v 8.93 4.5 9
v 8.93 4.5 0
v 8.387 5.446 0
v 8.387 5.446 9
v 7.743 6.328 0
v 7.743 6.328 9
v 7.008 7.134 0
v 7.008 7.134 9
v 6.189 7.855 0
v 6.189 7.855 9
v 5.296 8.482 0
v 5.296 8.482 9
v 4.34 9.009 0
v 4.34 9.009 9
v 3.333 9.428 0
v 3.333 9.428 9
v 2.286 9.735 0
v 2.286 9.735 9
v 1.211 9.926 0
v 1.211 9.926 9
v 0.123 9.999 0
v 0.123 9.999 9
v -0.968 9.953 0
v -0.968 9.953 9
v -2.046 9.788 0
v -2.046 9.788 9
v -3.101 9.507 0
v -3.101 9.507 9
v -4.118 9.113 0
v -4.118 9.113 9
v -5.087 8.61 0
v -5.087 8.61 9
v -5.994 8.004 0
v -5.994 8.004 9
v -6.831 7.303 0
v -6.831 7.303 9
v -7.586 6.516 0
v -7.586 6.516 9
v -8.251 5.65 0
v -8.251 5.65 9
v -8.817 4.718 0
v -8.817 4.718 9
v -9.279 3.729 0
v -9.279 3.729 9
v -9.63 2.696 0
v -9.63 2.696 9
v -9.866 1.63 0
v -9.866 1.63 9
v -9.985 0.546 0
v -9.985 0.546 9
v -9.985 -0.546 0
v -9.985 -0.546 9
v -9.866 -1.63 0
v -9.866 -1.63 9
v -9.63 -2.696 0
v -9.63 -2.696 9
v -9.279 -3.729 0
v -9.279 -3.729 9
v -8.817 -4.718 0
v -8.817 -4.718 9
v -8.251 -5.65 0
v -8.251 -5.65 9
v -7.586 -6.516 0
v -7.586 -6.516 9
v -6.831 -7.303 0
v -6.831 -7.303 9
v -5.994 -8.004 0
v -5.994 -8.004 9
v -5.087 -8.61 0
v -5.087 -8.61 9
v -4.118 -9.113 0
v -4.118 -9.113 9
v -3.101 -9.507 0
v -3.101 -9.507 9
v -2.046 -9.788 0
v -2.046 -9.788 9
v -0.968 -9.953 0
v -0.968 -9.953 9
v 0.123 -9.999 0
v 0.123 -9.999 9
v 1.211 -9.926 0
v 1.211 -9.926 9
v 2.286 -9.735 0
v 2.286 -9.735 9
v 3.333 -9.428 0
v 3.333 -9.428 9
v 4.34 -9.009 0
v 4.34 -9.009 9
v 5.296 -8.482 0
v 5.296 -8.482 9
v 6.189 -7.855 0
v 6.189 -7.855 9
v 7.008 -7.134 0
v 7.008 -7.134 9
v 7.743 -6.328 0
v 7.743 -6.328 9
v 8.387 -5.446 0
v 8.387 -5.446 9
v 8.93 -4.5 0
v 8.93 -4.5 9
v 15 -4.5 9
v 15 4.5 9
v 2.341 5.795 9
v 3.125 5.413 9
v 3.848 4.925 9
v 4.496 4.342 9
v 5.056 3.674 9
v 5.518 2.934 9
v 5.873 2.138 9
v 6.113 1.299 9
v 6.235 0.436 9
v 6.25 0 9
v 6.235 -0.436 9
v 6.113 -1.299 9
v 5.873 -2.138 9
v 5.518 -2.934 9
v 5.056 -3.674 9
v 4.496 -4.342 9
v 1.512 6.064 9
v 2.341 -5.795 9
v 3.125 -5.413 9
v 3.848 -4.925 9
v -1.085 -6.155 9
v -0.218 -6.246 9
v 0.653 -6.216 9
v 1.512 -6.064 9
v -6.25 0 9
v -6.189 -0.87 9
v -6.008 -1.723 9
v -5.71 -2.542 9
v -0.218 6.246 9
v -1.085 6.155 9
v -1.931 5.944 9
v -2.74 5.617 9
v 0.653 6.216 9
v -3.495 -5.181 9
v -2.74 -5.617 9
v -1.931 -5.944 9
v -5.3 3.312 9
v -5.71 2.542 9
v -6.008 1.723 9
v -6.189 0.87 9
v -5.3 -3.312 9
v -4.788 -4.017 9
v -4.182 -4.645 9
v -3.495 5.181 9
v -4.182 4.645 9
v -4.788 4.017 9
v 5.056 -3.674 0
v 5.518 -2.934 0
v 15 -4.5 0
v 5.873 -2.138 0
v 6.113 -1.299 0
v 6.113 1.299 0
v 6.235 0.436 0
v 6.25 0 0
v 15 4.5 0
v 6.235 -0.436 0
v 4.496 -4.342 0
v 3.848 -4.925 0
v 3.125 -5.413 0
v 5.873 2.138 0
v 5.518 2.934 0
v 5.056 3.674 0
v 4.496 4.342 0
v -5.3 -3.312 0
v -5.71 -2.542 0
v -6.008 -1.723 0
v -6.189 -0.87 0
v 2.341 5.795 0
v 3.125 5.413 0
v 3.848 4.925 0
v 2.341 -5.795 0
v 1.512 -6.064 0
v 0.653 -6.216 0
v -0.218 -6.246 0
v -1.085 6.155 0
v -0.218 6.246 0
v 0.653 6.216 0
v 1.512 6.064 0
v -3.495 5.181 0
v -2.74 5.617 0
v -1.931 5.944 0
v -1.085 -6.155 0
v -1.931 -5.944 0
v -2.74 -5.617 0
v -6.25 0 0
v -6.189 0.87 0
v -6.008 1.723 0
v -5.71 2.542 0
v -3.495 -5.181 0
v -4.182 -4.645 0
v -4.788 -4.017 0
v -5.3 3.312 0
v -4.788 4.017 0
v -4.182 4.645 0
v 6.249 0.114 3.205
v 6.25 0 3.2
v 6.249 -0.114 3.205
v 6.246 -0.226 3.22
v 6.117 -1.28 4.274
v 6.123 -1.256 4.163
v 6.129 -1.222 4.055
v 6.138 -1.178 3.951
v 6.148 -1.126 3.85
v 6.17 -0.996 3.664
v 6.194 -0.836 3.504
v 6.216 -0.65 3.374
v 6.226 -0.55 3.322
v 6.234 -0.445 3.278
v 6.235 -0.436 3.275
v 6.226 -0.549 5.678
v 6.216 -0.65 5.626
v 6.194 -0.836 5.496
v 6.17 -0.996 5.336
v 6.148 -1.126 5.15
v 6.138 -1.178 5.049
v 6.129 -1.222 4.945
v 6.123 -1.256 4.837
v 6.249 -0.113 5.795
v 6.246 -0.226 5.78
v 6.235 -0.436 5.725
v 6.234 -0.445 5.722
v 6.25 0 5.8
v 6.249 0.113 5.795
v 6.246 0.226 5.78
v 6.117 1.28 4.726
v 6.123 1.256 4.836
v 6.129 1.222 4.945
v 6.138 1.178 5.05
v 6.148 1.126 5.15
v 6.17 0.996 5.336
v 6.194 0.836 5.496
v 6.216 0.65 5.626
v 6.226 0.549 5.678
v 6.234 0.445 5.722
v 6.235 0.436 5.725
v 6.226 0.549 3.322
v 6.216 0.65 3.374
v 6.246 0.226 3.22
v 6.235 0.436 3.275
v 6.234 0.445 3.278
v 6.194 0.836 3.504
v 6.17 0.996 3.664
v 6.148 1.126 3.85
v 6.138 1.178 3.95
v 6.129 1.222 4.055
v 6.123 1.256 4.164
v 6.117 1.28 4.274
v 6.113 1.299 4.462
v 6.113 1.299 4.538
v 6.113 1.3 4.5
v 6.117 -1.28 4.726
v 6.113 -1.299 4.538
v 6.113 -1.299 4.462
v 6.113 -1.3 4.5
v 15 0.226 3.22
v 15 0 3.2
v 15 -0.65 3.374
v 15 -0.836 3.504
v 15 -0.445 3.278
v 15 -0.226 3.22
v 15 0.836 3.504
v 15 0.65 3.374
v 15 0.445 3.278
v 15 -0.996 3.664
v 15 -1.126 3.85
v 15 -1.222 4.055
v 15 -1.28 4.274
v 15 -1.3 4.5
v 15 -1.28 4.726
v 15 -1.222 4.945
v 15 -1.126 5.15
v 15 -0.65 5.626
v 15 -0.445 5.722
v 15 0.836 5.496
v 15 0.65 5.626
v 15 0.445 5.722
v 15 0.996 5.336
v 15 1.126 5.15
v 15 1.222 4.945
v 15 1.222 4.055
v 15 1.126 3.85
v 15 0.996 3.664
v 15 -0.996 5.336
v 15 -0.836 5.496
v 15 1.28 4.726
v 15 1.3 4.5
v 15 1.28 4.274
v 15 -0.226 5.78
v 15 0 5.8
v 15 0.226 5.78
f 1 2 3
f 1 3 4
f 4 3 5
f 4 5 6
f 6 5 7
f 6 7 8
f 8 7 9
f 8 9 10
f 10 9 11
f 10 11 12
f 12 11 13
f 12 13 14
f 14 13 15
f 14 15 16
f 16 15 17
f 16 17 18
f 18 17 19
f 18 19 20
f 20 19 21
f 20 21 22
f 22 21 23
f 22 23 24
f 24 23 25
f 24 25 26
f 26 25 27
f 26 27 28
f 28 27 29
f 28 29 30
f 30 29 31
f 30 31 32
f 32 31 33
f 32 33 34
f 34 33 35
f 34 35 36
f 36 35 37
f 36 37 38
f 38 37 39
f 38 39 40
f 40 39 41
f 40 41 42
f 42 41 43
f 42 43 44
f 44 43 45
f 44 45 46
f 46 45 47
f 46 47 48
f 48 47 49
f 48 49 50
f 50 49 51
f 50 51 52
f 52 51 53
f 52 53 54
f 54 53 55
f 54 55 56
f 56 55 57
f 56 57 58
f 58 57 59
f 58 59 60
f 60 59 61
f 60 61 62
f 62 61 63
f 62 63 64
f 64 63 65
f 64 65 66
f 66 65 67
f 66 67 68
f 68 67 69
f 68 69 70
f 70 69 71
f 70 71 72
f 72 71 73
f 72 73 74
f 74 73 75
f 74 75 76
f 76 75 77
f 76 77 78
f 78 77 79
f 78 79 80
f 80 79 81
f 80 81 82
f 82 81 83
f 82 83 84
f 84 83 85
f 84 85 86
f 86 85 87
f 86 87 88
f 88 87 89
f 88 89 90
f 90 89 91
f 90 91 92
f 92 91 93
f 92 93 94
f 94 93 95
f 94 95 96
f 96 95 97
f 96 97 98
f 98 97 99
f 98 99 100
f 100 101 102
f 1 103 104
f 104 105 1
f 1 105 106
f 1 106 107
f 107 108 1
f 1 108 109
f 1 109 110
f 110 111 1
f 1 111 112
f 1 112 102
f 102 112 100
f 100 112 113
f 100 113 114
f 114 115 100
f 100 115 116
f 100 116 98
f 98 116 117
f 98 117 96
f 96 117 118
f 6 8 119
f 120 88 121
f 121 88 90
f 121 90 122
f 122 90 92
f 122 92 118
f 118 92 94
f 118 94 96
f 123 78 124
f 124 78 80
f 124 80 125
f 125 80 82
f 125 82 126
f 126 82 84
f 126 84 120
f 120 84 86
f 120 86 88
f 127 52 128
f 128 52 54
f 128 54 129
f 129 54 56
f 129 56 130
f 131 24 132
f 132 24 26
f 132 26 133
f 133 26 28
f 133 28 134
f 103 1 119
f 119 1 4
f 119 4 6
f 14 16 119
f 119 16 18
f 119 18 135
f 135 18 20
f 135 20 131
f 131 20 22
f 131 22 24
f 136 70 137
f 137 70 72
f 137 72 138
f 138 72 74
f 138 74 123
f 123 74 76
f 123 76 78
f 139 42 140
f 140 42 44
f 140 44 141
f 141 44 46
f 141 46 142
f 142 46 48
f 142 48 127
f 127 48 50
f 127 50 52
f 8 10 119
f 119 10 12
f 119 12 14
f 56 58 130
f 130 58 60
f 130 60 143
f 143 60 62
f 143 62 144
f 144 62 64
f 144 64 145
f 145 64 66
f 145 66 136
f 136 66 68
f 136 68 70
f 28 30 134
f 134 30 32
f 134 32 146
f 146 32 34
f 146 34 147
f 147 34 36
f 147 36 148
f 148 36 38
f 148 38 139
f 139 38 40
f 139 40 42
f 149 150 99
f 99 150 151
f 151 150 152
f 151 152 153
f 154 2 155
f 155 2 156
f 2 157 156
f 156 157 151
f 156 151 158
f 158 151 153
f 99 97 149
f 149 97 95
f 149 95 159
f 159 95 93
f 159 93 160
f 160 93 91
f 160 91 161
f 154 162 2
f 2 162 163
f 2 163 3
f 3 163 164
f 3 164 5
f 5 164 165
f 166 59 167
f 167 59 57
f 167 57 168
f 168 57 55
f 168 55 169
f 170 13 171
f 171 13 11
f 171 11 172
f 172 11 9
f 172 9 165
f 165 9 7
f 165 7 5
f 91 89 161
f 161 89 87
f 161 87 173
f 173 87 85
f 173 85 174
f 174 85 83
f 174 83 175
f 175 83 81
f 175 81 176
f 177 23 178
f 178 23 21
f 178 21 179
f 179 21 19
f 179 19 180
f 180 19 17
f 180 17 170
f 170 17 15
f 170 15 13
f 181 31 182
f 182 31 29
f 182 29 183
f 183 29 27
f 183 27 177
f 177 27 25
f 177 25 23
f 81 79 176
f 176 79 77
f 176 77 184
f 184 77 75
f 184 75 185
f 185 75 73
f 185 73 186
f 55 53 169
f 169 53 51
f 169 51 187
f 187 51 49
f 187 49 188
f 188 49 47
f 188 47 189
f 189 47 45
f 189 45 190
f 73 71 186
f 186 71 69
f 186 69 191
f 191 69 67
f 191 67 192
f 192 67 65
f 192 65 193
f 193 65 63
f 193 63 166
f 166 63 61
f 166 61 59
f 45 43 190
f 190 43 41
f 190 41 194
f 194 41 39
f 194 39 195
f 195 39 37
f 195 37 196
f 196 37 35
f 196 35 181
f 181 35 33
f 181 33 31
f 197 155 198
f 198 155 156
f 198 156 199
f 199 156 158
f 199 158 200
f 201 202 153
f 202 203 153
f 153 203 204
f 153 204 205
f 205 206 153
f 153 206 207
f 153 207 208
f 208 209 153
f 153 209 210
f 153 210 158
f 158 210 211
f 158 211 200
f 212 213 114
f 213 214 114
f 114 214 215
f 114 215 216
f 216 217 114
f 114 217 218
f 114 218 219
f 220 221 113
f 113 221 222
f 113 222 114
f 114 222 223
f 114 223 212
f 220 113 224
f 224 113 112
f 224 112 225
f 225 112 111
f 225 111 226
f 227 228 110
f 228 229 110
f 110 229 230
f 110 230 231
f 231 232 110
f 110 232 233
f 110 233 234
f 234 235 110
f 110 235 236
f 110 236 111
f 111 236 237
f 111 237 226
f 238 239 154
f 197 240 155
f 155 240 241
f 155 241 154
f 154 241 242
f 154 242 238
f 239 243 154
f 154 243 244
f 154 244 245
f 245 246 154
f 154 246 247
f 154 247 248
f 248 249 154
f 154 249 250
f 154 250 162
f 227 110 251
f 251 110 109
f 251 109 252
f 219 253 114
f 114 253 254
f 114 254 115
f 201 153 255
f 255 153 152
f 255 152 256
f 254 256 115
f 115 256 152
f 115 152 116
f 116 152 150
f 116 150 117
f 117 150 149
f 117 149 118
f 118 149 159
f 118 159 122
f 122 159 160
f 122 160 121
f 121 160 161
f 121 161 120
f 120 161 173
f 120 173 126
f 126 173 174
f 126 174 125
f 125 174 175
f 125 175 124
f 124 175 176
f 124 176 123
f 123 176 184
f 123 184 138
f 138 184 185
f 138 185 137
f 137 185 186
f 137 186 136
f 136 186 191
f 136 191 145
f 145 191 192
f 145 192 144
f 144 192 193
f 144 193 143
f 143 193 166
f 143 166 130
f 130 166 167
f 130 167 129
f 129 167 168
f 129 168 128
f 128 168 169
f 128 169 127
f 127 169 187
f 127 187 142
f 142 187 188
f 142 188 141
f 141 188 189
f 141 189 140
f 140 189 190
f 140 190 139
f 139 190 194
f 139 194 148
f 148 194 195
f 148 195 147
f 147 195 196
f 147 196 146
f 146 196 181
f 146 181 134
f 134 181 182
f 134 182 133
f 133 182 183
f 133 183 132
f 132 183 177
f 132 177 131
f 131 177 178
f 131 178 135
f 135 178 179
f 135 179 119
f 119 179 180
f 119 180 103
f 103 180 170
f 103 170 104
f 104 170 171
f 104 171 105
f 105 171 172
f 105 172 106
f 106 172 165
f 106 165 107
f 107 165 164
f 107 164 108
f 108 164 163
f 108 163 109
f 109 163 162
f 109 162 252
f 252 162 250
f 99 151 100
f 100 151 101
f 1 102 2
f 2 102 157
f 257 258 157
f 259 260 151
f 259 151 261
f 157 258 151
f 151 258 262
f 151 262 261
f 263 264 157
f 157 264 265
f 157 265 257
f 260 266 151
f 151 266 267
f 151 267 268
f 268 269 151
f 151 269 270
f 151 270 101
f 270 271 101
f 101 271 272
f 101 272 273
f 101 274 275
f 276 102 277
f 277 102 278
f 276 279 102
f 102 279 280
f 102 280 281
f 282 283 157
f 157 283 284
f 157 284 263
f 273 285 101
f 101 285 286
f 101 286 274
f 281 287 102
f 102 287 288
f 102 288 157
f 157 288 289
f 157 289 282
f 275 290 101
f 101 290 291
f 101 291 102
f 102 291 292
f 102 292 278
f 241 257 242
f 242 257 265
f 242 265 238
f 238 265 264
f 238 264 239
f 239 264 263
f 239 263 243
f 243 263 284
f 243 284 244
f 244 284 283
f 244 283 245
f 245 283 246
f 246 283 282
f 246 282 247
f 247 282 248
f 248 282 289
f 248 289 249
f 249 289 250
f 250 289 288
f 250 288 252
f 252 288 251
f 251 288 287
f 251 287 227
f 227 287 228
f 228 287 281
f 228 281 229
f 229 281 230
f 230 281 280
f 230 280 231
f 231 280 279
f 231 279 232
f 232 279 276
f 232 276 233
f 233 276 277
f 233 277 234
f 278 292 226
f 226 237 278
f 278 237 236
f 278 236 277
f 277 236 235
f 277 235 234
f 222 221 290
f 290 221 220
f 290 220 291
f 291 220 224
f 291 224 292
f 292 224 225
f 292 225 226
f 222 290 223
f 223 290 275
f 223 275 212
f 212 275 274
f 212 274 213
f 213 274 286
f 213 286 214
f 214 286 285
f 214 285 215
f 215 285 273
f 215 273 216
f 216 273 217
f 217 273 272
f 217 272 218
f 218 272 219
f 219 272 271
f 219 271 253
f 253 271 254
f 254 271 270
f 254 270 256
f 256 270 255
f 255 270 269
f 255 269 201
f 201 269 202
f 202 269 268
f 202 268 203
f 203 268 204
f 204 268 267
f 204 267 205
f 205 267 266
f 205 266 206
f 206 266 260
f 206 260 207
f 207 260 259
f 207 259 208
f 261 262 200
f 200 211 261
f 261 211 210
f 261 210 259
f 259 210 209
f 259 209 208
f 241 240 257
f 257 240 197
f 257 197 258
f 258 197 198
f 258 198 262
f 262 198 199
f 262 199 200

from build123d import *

# Parameters (mm, degrees)
SKETCH1_R                 = 10
SKETCH1_R_2               = 6.25
COLLAR_RING_DEPTH         = 9
SKETCH2_W                 = 7
SKETCH2_H                 = 9
SCREW_BOSS_DEPTH          = 9
SKETCH3_R                 = 1.3
M3_THUMB_SCREW_HOLE_DEPTH = 5.5


with BuildPart() as part:
    # Sketch1 → Collar_ring (new body)
    with BuildSketch(Plane.XY):
        Circle(SKETCH1_R)
        Circle(SKETCH1_R_2, mode=Mode.SUBTRACT)
    extrude(amount=COLLAR_RING_DEPTH)

    # Sketch2 → Screw_boss (add)
    with BuildSketch(Plane.XY):
        with Locations((11.5, 0)):
            Rectangle(SKETCH2_W, SKETCH2_H)
    extrude(amount=SCREW_BOSS_DEPTH)

    # Sketch3 → M3_thumb_screw_hole (cut, symmetric)
    with BuildSketch(Plane(origin=(10.5, 0, 0), x_dir=(0, 0, -1), z_dir=(1, 0, 0))):
        with Locations(Location((-4.5, 0, 0), (0, 0, 180))):
            Circle(SKETCH3_R)
    extrude(amount=M3_THUMB_SCREW_HOLE_DEPTH, both=True, mode=Mode.SUBTRACT)


solid = part.part
